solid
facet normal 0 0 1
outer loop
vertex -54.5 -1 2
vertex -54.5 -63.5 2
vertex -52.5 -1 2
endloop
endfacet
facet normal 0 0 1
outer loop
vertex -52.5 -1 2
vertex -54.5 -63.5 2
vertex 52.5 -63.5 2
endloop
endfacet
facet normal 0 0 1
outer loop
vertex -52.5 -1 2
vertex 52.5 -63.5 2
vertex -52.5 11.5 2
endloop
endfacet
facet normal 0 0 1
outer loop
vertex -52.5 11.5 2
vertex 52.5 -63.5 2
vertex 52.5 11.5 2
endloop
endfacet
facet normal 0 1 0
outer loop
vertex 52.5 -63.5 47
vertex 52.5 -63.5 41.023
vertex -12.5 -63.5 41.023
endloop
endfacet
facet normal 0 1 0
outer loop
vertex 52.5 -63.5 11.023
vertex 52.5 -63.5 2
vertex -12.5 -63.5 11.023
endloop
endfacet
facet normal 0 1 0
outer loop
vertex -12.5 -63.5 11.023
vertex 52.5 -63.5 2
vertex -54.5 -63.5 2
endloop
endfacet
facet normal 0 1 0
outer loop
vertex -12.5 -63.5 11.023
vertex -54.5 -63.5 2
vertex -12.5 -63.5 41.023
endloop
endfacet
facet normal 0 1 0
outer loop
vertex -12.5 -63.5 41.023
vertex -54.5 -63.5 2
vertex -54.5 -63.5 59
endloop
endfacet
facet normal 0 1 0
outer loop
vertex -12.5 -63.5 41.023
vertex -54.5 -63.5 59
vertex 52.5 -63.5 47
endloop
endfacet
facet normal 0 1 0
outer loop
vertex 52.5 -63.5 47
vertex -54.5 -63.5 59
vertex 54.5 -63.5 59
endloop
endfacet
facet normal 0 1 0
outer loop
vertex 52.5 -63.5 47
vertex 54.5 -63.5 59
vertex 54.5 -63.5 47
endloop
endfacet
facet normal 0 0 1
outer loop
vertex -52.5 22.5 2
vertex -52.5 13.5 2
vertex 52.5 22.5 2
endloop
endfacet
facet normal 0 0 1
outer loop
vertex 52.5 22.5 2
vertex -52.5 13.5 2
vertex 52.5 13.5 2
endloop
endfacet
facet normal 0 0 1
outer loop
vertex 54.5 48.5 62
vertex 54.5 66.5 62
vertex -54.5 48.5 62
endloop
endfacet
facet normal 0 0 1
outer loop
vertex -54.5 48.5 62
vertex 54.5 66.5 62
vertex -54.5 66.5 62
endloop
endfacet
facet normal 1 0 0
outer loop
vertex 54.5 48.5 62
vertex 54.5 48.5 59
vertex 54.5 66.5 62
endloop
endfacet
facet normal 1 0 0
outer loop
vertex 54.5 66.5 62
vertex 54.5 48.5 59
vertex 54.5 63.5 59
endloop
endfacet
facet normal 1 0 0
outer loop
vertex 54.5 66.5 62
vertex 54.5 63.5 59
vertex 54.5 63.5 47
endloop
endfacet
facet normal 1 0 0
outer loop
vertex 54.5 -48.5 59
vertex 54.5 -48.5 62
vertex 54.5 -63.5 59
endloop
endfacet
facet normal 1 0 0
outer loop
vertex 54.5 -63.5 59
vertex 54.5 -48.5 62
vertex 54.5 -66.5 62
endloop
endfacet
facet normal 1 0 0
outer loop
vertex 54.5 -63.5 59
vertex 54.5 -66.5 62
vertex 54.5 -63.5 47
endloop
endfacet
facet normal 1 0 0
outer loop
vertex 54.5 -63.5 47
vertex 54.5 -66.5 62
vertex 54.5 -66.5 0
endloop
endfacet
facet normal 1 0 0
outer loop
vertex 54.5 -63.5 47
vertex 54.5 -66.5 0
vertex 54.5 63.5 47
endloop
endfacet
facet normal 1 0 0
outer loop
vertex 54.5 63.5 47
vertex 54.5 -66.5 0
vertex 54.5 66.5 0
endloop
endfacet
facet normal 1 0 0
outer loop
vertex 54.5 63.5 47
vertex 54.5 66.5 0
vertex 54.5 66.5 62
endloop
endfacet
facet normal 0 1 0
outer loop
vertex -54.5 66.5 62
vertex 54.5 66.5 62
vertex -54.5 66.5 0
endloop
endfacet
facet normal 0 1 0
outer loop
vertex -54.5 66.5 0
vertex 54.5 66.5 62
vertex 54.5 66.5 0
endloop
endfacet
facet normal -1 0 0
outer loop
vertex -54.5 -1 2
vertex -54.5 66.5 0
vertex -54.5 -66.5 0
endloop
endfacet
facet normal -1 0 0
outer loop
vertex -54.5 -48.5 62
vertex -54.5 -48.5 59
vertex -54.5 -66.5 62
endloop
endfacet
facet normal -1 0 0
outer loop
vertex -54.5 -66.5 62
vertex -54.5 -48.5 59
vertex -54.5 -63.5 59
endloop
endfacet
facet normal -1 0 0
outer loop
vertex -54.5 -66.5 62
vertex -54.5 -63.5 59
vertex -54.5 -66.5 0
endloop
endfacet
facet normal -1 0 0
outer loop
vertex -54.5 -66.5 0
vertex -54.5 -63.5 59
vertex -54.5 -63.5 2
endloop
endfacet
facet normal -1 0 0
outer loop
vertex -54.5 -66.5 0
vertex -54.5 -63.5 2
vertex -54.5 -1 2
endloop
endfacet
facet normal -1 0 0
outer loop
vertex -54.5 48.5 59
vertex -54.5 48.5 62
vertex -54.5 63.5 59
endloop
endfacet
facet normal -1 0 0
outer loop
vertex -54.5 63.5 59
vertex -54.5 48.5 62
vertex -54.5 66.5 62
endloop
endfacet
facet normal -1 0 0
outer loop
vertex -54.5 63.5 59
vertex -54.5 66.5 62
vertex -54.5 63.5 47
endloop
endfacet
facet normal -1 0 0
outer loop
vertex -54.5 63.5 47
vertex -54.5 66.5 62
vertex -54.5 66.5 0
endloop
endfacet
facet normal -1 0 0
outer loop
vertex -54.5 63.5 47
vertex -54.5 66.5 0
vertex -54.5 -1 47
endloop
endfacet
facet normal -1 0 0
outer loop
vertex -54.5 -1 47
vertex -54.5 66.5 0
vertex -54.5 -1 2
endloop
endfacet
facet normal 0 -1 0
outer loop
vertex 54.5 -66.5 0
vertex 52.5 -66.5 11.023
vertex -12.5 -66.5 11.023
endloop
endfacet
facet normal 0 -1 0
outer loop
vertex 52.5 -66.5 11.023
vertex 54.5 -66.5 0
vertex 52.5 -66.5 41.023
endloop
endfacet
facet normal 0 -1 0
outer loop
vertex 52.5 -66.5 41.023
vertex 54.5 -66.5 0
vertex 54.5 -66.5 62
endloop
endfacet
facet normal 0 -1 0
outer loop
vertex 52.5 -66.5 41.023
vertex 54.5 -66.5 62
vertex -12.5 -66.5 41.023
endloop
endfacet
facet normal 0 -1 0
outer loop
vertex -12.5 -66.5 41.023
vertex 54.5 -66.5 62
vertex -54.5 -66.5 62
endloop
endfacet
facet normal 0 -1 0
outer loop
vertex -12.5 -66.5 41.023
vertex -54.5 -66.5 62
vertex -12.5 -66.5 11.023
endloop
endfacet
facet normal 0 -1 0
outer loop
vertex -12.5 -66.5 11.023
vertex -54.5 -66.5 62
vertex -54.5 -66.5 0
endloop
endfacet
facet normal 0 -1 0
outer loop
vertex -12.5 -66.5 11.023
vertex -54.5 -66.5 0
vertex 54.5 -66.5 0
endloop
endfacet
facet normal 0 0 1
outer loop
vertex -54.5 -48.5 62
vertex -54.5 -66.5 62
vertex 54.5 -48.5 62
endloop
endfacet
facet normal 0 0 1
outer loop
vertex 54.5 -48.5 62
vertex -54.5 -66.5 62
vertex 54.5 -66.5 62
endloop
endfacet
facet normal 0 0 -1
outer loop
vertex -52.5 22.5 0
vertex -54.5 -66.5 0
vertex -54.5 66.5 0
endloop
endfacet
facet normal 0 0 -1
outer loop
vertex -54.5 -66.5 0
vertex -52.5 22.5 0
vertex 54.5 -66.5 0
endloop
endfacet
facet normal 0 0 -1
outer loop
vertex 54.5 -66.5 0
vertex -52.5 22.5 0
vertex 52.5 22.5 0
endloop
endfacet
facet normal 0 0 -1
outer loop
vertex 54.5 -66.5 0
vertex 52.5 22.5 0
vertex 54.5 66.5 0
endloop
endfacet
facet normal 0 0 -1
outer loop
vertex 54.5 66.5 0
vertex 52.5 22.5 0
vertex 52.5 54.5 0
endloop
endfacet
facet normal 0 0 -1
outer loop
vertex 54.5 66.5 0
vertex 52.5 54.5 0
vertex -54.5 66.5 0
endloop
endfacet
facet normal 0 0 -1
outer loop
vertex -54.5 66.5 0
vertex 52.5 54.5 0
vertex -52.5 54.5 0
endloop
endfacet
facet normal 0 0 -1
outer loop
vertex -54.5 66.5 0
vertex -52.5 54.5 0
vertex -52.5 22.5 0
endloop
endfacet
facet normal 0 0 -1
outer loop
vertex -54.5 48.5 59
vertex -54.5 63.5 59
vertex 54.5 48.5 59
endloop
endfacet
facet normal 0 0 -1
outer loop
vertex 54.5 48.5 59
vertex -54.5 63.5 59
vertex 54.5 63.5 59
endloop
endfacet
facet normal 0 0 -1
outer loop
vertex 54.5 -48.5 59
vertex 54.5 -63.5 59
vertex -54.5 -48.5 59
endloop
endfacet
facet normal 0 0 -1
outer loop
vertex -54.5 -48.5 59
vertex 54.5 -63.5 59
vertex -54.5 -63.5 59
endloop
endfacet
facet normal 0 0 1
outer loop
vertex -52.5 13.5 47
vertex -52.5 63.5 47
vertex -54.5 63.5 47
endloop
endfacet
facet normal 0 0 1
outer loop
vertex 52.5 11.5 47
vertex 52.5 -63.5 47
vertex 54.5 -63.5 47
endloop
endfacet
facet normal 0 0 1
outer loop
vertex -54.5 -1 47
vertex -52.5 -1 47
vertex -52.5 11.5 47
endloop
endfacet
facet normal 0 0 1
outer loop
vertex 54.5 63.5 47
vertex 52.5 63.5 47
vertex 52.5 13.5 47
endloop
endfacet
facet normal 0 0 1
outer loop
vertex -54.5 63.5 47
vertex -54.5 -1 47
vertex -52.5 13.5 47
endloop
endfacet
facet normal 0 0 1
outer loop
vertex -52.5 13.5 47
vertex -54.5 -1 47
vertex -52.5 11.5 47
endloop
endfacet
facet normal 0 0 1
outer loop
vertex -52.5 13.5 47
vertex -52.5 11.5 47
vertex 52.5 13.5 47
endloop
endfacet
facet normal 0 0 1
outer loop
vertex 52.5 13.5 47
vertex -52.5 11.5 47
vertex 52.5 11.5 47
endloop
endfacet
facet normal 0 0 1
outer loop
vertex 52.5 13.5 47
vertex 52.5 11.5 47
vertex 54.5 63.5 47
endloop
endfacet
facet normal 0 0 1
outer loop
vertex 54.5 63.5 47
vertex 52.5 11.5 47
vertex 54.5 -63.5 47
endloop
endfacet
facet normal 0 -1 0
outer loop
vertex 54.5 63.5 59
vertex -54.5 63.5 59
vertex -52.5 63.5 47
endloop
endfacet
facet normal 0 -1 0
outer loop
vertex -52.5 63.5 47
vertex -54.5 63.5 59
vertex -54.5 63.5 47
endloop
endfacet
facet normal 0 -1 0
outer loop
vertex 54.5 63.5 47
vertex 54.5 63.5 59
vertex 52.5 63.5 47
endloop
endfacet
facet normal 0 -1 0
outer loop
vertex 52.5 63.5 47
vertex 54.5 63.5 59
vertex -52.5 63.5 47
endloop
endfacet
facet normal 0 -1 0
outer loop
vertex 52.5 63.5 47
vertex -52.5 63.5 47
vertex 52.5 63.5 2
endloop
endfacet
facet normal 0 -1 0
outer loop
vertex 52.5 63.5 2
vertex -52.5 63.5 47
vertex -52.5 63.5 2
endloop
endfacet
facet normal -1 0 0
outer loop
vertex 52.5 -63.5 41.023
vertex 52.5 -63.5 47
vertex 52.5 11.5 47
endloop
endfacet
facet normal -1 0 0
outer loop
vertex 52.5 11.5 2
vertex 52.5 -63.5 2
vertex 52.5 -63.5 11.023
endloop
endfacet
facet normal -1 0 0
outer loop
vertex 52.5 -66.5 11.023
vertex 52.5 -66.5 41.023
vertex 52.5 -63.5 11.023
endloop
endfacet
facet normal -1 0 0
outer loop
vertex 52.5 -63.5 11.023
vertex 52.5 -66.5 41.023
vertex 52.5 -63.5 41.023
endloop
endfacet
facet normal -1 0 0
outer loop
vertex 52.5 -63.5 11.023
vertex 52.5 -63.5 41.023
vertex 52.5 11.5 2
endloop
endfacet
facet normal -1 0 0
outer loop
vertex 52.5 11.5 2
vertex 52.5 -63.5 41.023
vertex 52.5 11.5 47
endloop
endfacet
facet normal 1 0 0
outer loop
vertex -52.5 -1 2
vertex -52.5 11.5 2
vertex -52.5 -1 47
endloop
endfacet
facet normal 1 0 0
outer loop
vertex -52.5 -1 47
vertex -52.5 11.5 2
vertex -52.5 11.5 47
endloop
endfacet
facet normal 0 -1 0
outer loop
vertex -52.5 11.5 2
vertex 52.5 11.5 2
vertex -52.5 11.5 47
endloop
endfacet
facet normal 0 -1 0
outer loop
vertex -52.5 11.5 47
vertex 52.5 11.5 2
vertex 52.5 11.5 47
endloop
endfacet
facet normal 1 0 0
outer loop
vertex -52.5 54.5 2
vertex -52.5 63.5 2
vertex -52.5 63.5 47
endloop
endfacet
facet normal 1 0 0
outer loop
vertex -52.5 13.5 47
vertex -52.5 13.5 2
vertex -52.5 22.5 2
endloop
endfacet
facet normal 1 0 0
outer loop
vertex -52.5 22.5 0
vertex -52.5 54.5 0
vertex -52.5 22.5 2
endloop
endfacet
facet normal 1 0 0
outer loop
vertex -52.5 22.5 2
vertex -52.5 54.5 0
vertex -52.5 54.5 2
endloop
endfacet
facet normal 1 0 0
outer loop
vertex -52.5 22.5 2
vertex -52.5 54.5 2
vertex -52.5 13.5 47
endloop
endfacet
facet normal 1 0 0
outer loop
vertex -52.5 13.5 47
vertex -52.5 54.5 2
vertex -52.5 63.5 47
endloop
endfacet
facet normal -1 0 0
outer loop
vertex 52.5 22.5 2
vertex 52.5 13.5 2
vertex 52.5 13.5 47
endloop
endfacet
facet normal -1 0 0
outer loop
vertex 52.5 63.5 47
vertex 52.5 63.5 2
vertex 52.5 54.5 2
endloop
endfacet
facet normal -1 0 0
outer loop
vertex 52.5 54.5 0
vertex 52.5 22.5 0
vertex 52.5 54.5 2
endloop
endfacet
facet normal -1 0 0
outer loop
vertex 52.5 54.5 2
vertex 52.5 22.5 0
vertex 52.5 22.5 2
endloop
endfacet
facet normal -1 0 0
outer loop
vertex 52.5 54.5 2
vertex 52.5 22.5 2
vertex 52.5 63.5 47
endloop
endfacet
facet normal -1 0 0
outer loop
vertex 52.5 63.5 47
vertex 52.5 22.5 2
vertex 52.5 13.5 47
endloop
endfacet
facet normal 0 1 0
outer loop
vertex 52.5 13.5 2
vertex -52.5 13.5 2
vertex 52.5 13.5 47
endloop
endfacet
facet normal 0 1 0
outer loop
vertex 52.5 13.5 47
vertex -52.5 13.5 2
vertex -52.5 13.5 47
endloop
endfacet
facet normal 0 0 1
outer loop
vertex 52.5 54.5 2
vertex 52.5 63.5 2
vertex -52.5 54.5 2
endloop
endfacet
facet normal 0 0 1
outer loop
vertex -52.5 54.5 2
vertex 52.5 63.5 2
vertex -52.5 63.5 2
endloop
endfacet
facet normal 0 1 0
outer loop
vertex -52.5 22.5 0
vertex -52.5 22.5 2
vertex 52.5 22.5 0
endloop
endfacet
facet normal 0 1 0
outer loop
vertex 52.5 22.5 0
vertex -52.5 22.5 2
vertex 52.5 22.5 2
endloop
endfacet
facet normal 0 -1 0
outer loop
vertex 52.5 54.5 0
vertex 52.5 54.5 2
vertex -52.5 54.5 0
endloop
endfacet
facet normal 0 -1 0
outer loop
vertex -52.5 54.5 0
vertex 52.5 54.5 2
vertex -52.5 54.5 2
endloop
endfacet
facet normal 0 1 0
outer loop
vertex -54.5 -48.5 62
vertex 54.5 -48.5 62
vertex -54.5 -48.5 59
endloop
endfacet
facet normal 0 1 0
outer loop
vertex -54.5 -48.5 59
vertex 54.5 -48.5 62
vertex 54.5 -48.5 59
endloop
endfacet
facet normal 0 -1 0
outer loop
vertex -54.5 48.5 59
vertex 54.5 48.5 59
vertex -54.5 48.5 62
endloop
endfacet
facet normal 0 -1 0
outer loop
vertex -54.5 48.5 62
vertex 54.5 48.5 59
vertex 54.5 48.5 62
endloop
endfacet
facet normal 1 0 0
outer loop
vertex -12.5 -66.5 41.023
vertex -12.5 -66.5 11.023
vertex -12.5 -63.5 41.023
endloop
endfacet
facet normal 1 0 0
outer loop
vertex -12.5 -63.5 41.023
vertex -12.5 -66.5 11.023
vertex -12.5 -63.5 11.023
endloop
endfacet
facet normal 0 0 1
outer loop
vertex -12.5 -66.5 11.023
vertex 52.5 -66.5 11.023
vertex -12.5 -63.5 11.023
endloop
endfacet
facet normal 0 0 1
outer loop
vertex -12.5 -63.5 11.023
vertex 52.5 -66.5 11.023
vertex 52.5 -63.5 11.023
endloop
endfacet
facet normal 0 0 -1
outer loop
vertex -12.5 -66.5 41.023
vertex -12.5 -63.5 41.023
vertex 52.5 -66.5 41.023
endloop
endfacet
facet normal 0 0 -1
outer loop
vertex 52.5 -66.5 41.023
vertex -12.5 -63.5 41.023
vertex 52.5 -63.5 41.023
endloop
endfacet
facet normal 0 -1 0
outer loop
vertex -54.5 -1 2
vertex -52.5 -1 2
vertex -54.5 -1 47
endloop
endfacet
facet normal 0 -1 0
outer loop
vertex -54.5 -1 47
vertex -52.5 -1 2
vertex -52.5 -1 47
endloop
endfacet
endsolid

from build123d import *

# Parameters (mm, degrees)
SKETCH1_W           = 109
SKETCH1_H           = 133
BOSS_EXTRUDE1_DEPTH = 62
SKETCH3_W           = 3
SKETCH3_H           = 77
CUT_EXTRUDE2_DEPTH  = 109
SKETCH4_W           = 12
SKETCH4_H           = 127
CUT_EXTRUDE3_DEPTH  = 109
SKETCH5_W           = 45
SKETCH5_H           = 65
CUT_EXTRUDE4_DEPTH  = 107
SKETCH6_W           = 105
SKETCH6_H           = 10
CUT_EXTRUDE5_DEPTH  = 45
SKETCH7_W           = 105
SKETCH7_H           = 50
CUT_EXTRUDE6_DEPTH  = 45
SKETCH9_W           = 105
SKETCH9_H           = 32
CUT_EXTRUDE7_DEPTH  = 45
SKETCH11_W          = 3
SKETCH11_H          = 10
CUT_EXTRUDE9_DEPTH  = 192
SKETCH10_W          = 65
SKETCH10_H          = 30
CUT_EXTRUDE10_DEPTH = 10
SKETCH14_W          = 2
SKETCH14_H          = 45
BOSS_EXTRUDE2_DEPTH = 2.5


with BuildPart() as part:
    # Sketch1 → Boss-Extrude1 (new body)
    with BuildSketch(Plane.XY):
        Rectangle(SKETCH1_W, SKETCH1_H)
    extrude(amount=BOSS_EXTRUDE1_DEPTH)

    # Sketch3 → Cut-Extrude2 (cut)
    with BuildSketch(Plane.ZY.offset(54.5)):
        with Locations((60.5, 0)):
            Rectangle(SKETCH3_W, SKETCH3_H)
    extrude(amount=-CUT_EXTRUDE2_DEPTH, mode=Mode.SUBTRACT)

    # Sketch4 → Cut-Extrude3 (cut)
    with BuildSketch(Plane.ZY.offset(54.5)):
        with Locations((53, 0)):
            Rectangle(SKETCH4_W, SKETCH4_H)
    extrude(amount=-CUT_EXTRUDE3_DEPTH, mode=Mode.SUBTRACT)

    # Sketch5 → Cut-Extrude4 (cut)
    with BuildSketch(Plane.ZY.offset(54.5)):
        with Locations((24.5, -31)):
            Rectangle(SKETCH5_W, SKETCH5_H)
    extrude(amount=-CUT_EXTRUDE4_DEPTH, mode=Mode.SUBTRACT)

    # Sketch6 → Cut-Extrude5 (cut)
    with BuildSketch(Plane.XY.offset(47)):
        with Locations((0, 6.5)):
            Rectangle(SKETCH6_W, SKETCH6_H)
    extrude(amount=-CUT_EXTRUDE5_DEPTH, mode=Mode.SUBTRACT)

    # Sketch7 → Cut-Extrude6 (cut)
    with BuildSketch(Plane.XY.offset(47)):
        with Locations((0, 38.5)):
            Rectangle(SKETCH7_W, SKETCH7_H)
    extrude(amount=-CUT_EXTRUDE6_DEPTH, mode=Mode.SUBTRACT)

    # Sketch9 → Cut-Extrude7 (cut)
    with BuildSketch(Plane(origin=(0, 0, 0), x_dir=(-1, 0, 0), z_dir=(0, 0, -1))):
        with Locations((0, 38.5)):
            Rectangle(SKETCH9_W, SKETCH9_H)
    extrude(amount=-CUT_EXTRUDE7_DEPTH, mode=Mode.SUBTRACT)

    # Sketch11 → Cut-Extrude9 (cut)
    with BuildSketch(Plane.ZY.offset(54.5)):
        with Locations((60.5, 43.5)):
            Rectangle(SKETCH11_W, SKETCH11_H)
        with Locations((60.5, -43.5)):
            Rectangle(SKETCH11_W, SKETCH11_H)
    extrude(amount=-CUT_EXTRUDE9_DEPTH, mode=Mode.SUBTRACT)

    # Sketch10 → Cut-Extrude10 (cut)
    with BuildSketch(Plane.XZ.offset(66.5)):
        with Locations((20, 26.022609269)):
            Rectangle(SKETCH10_W, SKETCH10_H)
    extrude(amount=-CUT_EXTRUDE10_DEPTH, mode=Mode.SUBTRACT)

    # Sketch14 → Boss-Extrude2 (add)
    with BuildSketch(Plane.XZ.offset(-1.5)):
        with Locations((-53.5, 24.5)):
            Rectangle(SKETCH14_W, SKETCH14_H)
    extrude(amount=BOSS_EXTRUDE2_DEPTH)


solid = part.part
